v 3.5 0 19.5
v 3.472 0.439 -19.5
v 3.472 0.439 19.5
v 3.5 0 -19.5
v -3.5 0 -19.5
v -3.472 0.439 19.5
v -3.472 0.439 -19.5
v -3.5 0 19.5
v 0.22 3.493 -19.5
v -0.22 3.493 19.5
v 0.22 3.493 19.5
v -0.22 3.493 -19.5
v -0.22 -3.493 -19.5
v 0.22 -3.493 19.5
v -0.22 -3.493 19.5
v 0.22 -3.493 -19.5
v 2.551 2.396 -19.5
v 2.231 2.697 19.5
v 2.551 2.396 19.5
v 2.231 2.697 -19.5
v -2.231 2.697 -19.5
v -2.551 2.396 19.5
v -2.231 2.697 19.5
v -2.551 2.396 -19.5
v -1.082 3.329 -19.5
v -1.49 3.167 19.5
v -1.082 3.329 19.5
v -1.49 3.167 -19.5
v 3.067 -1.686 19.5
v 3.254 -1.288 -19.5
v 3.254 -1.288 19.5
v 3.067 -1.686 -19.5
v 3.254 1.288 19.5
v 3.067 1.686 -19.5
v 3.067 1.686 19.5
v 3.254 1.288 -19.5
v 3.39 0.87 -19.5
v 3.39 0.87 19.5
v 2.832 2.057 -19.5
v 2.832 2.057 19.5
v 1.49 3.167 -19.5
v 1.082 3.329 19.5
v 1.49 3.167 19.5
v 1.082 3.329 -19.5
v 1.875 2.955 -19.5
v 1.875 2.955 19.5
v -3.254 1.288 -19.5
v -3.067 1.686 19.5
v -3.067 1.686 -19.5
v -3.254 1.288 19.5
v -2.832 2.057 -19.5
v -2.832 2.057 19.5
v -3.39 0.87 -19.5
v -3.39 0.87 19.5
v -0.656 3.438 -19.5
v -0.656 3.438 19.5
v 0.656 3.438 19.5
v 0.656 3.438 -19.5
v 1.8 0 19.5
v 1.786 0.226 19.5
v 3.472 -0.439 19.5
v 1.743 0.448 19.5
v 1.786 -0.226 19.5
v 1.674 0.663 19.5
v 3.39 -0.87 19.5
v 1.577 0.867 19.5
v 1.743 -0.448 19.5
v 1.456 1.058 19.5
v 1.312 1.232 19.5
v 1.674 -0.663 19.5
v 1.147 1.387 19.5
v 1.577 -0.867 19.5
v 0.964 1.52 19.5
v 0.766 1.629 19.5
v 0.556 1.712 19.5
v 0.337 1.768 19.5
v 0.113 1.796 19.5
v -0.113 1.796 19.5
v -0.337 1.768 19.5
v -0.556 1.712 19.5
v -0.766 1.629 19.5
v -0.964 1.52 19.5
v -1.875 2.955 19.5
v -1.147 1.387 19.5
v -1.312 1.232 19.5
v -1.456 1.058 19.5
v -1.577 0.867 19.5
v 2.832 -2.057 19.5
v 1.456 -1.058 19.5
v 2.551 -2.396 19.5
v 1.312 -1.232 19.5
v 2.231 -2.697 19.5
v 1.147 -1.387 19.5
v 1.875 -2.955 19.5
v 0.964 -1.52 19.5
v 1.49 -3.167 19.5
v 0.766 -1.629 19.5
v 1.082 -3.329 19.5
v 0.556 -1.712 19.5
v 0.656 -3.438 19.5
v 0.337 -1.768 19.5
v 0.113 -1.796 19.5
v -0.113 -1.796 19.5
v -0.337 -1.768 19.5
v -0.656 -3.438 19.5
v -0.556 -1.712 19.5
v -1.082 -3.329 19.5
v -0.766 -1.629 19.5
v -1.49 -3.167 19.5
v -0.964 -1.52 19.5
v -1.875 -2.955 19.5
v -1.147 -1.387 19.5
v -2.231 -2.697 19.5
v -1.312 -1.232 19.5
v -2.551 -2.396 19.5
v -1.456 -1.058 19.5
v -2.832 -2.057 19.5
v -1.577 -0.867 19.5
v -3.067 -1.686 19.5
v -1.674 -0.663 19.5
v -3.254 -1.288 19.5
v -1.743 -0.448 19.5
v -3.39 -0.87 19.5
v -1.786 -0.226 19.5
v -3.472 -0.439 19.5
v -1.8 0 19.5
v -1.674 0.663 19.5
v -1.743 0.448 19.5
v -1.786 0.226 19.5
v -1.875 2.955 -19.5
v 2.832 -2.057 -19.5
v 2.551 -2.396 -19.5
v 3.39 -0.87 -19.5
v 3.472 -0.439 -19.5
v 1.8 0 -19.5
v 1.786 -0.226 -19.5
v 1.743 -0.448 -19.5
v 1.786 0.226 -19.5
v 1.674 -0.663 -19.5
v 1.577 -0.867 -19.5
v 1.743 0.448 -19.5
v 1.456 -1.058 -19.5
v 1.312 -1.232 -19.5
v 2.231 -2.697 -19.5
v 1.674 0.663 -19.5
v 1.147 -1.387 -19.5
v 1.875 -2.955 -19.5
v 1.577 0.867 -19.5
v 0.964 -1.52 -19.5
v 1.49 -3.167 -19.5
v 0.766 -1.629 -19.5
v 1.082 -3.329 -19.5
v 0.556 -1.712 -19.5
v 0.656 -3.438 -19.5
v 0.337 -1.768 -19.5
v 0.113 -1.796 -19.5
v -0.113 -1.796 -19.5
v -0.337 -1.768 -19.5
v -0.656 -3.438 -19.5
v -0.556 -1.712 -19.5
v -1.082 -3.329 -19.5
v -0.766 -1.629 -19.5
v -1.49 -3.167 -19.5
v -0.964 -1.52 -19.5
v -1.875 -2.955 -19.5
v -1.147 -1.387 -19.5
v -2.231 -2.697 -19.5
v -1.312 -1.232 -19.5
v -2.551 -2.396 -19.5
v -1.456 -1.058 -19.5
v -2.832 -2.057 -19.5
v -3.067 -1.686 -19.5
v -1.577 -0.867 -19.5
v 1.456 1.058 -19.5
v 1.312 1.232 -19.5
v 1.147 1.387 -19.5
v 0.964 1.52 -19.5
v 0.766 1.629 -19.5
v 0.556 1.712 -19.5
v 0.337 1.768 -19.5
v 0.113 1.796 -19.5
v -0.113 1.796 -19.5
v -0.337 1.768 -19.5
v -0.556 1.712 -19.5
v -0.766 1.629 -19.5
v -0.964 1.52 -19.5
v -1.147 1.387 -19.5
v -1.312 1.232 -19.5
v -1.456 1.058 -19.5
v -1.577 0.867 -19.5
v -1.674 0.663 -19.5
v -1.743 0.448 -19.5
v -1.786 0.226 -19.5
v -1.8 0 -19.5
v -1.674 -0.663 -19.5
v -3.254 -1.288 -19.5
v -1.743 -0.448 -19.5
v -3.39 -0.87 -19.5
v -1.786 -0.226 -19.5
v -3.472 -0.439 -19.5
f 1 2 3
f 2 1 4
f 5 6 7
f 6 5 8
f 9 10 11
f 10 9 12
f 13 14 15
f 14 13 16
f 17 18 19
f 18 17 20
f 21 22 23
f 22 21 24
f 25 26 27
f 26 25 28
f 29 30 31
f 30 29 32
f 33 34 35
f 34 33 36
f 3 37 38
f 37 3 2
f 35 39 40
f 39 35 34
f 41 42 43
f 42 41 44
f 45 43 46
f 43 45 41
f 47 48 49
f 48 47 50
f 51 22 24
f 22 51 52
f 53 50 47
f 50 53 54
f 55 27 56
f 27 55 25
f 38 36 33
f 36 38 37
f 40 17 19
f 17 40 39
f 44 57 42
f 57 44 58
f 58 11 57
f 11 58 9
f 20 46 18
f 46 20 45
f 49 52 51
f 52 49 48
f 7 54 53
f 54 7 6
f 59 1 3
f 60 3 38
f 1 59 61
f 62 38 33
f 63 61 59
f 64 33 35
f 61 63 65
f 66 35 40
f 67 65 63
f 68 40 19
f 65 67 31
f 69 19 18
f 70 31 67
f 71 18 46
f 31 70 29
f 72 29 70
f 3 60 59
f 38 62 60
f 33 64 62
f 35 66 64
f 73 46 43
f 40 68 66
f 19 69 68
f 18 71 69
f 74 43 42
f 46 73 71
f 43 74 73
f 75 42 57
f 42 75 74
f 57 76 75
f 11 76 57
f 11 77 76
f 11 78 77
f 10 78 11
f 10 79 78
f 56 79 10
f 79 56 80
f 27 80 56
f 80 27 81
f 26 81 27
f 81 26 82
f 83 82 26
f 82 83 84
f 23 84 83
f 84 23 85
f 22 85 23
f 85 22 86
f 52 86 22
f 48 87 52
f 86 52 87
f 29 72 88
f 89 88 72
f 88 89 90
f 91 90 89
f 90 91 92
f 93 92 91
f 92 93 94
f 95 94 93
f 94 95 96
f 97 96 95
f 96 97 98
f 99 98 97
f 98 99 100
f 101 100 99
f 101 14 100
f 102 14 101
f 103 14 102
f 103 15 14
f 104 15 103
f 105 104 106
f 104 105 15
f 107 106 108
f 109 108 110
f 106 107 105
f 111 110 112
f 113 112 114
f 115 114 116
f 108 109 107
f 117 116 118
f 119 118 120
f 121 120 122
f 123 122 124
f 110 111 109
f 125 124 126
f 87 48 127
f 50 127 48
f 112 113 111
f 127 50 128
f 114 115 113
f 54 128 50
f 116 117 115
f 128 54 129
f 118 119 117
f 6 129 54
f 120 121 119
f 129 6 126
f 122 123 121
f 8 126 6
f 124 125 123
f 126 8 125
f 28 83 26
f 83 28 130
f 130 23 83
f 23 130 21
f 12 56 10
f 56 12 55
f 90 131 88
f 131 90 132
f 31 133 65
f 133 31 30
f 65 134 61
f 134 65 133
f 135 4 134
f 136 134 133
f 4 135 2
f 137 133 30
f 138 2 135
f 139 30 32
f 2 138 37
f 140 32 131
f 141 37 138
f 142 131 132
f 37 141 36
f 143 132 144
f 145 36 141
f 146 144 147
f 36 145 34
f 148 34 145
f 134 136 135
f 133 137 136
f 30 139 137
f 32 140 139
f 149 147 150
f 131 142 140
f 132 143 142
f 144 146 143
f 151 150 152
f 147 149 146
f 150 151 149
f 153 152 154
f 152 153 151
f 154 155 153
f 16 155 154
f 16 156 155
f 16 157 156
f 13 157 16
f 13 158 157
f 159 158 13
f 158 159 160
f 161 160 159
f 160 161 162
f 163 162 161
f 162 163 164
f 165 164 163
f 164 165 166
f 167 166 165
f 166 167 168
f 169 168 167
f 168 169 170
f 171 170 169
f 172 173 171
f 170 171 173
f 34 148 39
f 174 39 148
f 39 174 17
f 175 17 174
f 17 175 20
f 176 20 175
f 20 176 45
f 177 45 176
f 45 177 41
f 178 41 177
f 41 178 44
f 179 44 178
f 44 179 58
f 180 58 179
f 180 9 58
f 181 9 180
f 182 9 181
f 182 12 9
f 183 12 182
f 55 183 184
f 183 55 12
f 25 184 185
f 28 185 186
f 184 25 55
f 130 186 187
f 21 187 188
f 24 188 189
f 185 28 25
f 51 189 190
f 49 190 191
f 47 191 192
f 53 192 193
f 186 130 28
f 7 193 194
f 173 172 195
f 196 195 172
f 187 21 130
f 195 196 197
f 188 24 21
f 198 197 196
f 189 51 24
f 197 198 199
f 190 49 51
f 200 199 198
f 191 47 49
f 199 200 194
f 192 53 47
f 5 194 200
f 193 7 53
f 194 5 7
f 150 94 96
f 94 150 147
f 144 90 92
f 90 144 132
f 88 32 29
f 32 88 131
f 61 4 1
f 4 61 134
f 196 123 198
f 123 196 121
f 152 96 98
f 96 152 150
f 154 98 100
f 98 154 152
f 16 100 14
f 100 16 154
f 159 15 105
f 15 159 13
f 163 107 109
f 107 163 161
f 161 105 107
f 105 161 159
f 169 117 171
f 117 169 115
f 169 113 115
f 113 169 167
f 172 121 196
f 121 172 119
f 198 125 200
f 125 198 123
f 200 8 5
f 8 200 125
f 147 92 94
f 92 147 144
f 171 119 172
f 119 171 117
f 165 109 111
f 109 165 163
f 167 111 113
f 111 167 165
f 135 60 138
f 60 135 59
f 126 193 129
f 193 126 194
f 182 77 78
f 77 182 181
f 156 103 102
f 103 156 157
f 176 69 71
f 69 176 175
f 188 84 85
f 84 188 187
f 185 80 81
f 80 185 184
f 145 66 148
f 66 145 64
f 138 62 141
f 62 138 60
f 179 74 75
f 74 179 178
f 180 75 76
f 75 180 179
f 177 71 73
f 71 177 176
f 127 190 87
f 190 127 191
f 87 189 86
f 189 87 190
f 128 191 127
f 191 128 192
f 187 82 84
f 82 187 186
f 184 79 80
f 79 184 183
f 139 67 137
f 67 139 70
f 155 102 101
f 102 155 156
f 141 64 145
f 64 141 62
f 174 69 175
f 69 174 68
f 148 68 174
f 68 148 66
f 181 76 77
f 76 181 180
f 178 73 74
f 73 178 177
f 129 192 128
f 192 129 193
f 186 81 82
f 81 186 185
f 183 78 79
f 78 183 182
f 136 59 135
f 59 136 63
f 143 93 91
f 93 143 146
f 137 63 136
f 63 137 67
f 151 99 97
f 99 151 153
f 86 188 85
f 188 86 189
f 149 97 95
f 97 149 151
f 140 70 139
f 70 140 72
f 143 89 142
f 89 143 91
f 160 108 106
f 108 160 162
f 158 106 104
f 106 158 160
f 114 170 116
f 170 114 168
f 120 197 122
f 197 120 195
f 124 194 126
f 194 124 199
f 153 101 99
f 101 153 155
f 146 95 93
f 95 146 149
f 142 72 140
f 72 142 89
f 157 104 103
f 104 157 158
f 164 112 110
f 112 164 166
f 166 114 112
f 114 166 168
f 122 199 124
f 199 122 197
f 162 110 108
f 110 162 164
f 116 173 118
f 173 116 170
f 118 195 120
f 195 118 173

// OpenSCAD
$fn = 50;


difference() {
	union() {
		translate(v = [0, 0, -19.5000000000]) {
			cylinder(h = 39, r = 3.5000000000);
		}
	}
	union() {
		translate(v = [0, 0, -100.0000000000]) {
			cylinder(h = 200, r = 1.8000000000);
		}
	}
}
